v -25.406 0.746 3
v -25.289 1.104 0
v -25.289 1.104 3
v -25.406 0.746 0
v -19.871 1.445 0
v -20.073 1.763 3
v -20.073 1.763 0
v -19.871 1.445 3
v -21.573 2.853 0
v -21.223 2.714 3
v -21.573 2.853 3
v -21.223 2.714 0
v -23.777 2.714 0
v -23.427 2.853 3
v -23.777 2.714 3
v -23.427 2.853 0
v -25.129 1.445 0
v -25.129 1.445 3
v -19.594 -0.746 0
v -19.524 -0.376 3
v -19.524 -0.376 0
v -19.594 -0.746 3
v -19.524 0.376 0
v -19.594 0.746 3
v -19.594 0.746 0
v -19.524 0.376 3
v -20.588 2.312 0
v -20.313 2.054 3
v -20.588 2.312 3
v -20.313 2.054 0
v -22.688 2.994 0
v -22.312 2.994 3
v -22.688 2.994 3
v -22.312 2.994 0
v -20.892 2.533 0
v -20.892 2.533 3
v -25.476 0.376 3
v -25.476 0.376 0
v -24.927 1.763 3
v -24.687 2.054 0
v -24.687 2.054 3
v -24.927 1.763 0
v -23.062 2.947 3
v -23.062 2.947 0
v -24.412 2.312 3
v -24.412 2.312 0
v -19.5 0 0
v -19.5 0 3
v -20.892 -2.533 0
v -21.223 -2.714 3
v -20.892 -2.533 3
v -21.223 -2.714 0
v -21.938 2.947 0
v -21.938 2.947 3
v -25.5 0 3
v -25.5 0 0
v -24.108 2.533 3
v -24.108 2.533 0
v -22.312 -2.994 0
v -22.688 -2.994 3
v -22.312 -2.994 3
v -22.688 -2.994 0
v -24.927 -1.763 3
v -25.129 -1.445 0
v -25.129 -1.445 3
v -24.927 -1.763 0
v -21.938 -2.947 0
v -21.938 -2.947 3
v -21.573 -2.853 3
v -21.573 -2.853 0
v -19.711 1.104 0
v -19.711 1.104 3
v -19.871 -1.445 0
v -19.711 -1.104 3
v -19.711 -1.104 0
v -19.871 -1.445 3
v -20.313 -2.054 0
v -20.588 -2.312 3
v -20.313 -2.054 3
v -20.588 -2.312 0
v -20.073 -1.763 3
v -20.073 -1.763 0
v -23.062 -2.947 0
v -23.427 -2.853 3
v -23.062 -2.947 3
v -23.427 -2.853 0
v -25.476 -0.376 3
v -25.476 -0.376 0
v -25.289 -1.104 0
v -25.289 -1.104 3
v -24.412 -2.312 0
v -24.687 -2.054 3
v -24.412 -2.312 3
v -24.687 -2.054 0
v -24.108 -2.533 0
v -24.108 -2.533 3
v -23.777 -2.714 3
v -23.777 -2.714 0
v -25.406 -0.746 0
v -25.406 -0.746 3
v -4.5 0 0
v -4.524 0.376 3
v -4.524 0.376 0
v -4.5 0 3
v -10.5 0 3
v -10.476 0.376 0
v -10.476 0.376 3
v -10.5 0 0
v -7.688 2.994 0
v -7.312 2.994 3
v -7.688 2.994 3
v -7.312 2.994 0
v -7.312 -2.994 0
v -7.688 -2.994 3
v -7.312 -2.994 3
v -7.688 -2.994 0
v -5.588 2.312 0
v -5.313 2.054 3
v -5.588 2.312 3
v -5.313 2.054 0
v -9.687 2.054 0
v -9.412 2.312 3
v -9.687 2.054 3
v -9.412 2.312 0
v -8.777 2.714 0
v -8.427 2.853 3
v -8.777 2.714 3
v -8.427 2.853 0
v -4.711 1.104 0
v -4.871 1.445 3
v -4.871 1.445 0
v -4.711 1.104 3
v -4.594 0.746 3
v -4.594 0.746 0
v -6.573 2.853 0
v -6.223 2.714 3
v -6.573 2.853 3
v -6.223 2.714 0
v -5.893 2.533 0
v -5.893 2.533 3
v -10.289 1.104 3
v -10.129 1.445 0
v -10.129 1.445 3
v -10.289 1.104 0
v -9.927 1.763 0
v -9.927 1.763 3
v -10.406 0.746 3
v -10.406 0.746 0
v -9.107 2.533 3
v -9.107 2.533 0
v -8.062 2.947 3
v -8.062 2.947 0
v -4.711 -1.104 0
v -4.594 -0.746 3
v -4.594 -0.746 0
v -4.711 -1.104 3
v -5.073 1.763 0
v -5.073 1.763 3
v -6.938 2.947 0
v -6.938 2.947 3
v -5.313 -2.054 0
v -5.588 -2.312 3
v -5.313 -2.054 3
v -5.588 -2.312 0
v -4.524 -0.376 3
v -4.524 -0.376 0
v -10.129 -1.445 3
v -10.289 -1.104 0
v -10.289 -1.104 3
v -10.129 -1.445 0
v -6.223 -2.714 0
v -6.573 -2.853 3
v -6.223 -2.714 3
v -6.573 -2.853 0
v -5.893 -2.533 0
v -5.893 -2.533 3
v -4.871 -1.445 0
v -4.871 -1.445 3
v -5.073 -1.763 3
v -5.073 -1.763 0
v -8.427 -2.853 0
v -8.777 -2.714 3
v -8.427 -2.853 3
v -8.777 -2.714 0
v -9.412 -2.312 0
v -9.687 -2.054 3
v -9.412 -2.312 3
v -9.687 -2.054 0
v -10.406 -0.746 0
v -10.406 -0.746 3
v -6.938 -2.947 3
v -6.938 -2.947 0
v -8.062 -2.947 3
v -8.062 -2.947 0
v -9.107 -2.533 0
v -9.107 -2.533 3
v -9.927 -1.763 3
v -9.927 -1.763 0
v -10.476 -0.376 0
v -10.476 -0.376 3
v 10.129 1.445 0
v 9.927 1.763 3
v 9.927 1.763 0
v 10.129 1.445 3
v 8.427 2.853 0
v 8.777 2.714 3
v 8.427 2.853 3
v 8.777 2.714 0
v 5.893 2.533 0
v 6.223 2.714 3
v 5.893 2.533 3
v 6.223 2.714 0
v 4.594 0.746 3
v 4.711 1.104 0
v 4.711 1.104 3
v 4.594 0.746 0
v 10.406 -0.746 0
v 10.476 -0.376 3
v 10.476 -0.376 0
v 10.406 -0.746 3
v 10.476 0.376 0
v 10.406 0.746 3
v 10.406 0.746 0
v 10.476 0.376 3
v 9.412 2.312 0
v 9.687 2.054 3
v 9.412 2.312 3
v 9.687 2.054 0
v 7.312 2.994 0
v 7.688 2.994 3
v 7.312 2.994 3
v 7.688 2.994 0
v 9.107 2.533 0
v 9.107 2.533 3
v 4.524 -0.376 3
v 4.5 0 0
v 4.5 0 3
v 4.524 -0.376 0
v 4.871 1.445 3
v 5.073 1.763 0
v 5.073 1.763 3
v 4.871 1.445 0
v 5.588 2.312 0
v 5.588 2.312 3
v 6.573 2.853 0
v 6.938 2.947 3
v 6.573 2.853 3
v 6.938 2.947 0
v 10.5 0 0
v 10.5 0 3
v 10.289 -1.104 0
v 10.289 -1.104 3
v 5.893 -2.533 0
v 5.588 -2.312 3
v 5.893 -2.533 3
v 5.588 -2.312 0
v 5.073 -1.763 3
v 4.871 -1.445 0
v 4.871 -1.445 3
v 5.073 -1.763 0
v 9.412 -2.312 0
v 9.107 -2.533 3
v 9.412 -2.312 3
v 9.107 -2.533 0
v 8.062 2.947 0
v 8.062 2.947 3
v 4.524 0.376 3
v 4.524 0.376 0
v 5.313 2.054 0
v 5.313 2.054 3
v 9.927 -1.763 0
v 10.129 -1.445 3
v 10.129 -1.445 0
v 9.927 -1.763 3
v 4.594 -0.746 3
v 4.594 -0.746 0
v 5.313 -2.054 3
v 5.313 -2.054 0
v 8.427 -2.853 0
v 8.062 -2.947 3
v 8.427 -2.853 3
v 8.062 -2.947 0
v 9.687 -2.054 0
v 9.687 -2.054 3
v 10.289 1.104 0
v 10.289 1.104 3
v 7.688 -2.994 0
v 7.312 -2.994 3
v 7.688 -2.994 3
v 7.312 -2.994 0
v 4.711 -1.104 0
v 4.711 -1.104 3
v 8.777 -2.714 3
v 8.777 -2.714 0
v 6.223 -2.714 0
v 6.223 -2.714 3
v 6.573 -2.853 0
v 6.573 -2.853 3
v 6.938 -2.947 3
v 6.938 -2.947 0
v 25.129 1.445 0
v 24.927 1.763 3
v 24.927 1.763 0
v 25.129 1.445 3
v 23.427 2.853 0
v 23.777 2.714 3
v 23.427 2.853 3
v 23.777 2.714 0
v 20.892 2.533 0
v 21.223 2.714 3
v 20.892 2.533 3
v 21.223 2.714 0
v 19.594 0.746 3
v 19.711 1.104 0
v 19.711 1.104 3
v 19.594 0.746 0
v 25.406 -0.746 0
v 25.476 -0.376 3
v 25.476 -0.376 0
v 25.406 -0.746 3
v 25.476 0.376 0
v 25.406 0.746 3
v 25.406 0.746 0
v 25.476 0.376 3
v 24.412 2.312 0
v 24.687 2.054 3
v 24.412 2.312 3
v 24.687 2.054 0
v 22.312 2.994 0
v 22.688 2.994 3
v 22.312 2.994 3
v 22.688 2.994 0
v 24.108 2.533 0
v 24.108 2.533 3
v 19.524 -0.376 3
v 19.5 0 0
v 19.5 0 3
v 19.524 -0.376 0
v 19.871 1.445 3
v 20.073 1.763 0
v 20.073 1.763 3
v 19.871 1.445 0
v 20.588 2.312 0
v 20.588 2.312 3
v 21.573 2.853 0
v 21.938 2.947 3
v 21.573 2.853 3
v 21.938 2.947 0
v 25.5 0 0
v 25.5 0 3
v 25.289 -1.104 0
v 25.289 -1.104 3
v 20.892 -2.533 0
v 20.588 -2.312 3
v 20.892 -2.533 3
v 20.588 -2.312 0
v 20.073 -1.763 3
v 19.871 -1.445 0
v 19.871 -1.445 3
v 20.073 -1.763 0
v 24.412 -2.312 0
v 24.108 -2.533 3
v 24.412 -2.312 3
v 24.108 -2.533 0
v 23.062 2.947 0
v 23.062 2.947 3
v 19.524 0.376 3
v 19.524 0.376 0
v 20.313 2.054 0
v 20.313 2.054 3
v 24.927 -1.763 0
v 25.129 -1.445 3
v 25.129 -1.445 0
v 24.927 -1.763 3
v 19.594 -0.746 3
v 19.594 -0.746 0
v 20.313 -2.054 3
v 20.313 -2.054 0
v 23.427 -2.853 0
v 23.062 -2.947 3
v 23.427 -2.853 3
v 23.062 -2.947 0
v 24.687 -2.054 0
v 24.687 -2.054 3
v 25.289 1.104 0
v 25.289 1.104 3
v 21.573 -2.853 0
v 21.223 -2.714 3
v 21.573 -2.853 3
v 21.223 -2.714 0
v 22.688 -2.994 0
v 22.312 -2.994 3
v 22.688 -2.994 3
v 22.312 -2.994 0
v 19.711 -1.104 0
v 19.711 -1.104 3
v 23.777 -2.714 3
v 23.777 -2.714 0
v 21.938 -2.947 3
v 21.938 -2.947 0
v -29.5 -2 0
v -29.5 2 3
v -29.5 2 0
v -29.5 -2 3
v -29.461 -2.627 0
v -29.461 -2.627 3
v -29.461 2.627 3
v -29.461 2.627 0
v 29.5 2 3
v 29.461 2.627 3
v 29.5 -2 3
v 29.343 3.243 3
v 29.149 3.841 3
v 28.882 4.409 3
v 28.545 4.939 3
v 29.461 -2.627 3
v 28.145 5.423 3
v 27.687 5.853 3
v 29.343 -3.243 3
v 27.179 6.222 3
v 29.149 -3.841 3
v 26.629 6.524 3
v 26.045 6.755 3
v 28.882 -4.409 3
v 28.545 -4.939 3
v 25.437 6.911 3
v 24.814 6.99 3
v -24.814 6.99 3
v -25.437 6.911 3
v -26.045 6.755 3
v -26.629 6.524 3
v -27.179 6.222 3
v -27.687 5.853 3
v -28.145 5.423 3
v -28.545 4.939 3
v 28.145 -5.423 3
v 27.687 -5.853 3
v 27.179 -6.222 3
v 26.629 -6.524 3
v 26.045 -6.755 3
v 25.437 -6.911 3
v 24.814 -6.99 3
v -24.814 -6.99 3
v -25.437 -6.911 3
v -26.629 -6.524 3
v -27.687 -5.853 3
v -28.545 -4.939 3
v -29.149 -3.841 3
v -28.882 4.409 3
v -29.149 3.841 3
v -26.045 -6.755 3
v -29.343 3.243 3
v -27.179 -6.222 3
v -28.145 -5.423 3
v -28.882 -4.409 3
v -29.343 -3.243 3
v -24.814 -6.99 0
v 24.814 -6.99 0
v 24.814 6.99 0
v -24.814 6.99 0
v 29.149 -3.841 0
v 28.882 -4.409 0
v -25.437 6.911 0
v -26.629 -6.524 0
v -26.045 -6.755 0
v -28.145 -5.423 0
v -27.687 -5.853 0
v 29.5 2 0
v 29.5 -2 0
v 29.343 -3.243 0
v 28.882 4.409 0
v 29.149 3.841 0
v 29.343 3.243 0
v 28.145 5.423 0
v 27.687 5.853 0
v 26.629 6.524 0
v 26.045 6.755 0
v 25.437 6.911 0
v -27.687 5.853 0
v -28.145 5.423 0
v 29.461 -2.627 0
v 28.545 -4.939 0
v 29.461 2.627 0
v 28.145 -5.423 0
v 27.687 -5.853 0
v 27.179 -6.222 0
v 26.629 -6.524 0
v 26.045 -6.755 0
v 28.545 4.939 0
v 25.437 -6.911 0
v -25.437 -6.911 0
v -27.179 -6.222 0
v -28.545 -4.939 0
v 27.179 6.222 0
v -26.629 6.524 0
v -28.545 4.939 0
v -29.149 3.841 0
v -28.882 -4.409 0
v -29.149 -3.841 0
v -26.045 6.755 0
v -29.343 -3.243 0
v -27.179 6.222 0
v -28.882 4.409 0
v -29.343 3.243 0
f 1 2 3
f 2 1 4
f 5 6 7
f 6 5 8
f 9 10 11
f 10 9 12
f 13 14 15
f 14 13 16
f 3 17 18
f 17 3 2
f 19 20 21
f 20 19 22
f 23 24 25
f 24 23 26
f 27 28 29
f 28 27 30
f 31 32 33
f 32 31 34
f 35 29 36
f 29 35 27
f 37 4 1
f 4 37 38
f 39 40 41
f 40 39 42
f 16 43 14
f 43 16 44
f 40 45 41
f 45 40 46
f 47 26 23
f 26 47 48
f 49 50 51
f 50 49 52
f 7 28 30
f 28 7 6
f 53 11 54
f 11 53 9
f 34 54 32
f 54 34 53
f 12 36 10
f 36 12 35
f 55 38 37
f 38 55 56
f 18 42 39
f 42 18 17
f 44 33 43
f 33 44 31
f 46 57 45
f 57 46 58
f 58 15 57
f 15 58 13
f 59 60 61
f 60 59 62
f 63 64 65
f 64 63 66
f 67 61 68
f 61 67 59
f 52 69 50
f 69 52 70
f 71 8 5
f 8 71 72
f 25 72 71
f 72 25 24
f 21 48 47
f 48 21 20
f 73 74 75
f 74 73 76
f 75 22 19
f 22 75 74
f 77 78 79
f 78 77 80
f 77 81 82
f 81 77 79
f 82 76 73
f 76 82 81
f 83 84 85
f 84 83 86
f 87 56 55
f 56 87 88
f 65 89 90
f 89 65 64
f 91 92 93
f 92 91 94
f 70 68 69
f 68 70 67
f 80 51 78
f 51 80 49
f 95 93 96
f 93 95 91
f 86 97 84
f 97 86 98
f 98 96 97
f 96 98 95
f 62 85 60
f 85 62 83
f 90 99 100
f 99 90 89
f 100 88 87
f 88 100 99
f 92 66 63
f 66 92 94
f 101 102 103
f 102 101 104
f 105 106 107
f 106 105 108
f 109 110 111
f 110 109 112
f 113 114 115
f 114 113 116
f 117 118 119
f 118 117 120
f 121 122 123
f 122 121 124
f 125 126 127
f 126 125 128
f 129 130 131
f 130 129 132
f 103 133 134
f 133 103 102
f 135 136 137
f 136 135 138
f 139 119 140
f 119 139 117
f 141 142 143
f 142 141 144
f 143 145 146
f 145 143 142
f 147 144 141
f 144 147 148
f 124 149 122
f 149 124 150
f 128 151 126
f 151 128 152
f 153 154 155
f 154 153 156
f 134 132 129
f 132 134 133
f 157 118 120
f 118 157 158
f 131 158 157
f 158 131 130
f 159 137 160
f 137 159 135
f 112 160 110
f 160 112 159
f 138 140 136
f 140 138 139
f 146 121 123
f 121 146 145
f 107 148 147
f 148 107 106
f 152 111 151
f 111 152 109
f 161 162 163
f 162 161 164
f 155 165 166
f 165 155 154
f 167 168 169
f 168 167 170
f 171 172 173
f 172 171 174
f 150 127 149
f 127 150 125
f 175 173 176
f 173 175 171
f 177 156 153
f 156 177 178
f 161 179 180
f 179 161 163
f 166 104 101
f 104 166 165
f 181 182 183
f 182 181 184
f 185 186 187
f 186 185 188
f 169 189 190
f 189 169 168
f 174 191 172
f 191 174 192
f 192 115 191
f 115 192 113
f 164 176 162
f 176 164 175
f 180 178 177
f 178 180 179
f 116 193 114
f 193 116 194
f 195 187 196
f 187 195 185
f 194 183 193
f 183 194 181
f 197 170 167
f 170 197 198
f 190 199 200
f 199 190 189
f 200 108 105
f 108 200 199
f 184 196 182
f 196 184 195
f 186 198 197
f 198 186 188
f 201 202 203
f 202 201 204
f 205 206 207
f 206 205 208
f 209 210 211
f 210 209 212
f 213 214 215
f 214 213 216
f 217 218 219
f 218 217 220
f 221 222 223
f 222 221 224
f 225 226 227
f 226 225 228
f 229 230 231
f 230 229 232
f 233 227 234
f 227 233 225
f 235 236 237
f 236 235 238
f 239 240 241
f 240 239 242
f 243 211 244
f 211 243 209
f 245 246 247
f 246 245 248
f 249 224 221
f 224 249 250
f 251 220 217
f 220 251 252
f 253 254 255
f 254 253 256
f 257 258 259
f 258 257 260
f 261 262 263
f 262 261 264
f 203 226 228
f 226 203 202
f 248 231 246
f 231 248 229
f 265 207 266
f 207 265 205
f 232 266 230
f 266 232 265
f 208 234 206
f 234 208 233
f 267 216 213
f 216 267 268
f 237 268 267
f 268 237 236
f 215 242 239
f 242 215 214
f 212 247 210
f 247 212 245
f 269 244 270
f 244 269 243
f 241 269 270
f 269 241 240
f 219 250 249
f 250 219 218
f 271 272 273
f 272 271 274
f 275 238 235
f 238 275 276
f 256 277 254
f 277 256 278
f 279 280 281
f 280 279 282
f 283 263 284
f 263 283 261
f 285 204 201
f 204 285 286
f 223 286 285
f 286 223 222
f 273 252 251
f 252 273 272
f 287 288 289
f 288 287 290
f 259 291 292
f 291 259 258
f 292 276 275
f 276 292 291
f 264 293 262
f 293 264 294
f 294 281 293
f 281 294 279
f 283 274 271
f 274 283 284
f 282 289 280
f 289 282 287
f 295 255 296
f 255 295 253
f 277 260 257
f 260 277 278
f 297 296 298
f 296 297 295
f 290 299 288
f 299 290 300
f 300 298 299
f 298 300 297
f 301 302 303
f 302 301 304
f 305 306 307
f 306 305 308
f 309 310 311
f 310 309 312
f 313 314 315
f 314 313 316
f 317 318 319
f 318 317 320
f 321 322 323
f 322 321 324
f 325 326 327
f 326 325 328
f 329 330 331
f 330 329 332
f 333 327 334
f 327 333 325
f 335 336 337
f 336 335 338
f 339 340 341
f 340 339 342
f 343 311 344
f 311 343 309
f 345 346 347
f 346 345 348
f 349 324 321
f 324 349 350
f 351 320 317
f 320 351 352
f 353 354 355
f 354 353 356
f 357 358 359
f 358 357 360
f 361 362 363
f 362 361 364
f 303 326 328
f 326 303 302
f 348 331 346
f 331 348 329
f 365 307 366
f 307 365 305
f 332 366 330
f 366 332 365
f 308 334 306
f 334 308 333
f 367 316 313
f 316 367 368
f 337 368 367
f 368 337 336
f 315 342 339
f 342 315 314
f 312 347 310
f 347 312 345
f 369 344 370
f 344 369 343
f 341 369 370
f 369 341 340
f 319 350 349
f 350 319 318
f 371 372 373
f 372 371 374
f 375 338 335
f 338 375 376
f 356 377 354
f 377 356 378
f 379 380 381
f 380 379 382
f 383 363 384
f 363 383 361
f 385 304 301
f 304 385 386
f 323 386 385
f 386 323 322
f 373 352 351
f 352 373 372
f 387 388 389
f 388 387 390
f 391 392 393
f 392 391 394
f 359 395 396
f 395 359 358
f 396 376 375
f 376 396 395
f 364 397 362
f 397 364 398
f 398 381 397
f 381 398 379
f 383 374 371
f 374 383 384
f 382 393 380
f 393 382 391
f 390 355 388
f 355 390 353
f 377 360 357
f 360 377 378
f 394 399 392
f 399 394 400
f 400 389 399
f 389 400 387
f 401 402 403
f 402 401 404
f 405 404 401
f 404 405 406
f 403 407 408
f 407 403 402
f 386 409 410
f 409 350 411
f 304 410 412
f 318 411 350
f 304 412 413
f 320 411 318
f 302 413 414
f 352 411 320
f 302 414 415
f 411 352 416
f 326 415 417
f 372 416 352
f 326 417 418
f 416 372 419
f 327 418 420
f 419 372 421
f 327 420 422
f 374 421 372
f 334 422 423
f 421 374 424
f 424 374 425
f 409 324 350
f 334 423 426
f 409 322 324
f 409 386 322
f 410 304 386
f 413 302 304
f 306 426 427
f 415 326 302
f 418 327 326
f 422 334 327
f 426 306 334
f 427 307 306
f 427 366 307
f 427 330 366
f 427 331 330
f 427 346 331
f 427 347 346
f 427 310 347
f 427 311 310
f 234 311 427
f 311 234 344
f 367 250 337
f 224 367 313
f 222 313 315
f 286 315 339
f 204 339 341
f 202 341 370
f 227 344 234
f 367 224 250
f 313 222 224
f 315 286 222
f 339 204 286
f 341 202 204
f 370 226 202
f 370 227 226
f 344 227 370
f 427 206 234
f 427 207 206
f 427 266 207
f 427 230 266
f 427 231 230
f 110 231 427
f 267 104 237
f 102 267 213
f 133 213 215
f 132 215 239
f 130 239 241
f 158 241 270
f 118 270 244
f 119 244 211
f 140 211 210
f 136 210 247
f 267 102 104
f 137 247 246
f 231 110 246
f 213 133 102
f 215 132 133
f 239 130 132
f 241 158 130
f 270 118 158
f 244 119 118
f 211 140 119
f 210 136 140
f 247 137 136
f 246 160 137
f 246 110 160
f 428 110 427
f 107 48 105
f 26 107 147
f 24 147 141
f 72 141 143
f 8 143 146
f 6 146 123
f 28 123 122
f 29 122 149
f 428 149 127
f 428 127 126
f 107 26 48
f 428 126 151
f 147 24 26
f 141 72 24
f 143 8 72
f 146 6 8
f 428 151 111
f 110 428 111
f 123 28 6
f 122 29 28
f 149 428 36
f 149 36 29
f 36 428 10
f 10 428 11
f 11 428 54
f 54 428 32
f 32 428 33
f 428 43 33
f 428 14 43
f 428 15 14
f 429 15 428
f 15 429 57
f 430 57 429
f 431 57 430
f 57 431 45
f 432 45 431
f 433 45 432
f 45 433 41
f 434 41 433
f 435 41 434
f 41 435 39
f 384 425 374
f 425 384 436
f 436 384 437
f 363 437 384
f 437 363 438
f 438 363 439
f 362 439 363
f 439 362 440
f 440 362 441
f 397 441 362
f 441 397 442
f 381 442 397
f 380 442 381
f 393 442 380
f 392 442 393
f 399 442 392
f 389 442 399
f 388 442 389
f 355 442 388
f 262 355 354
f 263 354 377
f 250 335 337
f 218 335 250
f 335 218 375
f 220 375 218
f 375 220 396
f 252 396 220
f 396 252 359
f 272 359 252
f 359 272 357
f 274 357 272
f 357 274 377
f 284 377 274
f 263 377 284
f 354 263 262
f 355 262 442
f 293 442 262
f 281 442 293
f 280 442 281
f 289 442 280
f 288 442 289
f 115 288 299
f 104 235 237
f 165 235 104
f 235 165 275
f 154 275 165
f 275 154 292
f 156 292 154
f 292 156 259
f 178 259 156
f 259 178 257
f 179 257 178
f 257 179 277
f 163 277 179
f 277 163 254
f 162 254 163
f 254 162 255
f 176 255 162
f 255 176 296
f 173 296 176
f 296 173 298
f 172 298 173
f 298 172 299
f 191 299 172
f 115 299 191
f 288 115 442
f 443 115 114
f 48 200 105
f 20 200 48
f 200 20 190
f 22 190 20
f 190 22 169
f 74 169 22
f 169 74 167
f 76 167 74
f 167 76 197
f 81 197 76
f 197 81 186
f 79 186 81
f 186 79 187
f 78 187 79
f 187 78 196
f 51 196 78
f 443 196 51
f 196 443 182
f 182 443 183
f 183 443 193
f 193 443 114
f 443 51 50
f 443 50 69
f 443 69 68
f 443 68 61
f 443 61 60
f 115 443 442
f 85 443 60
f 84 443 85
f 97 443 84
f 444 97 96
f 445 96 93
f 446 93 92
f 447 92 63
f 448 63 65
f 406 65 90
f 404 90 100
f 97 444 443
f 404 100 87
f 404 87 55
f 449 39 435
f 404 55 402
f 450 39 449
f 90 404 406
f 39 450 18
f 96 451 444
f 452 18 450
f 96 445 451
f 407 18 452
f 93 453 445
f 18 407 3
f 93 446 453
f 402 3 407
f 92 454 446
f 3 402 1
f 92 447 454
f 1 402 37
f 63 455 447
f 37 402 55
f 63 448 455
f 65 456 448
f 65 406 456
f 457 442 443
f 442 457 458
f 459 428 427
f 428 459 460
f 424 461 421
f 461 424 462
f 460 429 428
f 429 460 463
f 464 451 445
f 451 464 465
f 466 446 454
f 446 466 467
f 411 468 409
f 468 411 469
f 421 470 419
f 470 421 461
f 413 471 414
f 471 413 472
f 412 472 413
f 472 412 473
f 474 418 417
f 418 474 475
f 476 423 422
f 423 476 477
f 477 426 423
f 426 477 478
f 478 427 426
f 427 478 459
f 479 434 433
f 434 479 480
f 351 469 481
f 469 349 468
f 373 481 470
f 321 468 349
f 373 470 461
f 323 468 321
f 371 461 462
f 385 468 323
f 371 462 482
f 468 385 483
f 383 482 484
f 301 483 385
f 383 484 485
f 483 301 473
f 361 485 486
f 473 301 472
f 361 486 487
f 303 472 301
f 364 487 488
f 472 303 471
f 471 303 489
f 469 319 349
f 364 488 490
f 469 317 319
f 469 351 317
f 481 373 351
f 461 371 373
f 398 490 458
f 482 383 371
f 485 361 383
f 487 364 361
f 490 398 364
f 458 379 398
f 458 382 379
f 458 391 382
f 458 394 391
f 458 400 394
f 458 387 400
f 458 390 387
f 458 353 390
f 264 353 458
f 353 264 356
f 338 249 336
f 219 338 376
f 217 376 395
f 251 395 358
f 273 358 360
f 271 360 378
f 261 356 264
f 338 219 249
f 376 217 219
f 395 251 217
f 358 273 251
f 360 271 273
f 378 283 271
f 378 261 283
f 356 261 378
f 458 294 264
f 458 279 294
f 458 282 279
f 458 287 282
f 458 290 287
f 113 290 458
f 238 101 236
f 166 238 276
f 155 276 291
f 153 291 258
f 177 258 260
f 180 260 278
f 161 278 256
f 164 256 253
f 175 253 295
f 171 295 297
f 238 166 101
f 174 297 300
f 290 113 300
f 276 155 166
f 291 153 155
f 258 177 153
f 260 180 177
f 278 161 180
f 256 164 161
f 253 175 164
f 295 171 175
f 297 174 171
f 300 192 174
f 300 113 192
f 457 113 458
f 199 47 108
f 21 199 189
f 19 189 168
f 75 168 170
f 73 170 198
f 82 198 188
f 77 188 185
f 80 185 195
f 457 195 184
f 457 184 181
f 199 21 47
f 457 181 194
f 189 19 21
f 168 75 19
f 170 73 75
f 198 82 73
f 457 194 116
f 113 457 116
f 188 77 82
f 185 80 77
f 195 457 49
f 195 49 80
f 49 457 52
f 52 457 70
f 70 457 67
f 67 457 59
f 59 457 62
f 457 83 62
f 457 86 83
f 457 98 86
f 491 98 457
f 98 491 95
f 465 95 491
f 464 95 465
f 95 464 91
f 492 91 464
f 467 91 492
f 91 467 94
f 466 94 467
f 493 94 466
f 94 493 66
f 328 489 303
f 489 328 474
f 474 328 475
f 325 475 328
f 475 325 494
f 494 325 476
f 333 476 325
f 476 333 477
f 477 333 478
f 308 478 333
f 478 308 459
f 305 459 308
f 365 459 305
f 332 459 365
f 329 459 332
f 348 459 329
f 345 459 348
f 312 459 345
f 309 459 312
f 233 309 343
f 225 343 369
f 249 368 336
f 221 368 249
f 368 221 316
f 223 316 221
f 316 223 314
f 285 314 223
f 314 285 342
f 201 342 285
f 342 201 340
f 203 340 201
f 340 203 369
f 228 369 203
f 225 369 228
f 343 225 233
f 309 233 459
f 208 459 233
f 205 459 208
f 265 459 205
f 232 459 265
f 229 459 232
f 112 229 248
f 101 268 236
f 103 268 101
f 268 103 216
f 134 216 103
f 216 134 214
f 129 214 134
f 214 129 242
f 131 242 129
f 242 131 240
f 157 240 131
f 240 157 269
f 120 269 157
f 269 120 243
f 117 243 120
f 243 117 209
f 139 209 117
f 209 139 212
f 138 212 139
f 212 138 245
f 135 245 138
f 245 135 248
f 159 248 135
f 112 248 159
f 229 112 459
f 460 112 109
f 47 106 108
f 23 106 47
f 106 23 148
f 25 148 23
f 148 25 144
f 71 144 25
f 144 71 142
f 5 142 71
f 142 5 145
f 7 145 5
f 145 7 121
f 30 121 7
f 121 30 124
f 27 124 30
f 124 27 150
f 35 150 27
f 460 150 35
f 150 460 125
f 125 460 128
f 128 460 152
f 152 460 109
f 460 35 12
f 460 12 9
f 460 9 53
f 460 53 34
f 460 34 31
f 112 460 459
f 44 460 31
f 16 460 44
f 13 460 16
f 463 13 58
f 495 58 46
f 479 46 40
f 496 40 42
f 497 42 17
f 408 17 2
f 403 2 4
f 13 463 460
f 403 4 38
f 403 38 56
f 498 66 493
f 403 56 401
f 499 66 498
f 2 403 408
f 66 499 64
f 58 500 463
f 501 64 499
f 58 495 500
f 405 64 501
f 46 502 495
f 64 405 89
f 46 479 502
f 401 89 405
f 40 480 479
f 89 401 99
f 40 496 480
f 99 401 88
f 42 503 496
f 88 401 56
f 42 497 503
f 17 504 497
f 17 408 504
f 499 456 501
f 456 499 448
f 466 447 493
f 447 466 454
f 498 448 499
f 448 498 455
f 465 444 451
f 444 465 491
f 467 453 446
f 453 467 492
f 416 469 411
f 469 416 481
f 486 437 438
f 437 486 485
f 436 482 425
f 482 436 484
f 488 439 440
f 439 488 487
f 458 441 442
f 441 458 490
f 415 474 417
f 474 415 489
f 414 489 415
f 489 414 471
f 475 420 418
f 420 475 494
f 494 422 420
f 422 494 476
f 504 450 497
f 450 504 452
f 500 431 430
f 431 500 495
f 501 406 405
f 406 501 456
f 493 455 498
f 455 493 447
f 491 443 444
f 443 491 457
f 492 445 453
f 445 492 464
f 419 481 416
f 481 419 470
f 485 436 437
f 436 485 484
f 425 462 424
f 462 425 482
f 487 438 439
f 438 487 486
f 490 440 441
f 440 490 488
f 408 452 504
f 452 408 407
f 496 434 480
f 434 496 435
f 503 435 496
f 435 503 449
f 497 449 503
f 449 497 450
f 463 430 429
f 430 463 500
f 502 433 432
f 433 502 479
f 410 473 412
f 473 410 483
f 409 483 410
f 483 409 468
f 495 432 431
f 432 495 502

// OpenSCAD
// Generated by SolidPython 1.1.3 on 2023-03-12 21:54:49
$fn = 50;


difference() {
	union() {
		translate(v = [0, 0, 0]) {
			rotate(a = [0, 0, 0]) {
				hull() {
					translate(v = [-24.5000000000, 2.0000000000, 0]) {
						rotate(a = [0, 0, 0]) {
							translate(v = [0, 0, 0]) {
								rotate(a = [0, 0, 0]) {
									cylinder(h = 3, r = 5);
								}
							}
						}
					}
					translate(v = [24.5000000000, 2.0000000000, 0]) {
						rotate(a = [0, 0, 0]) {
							translate(v = [0, 0, 0]) {
								rotate(a = [0, 0, 0]) {
									cylinder(h = 3, r = 5);
								}
							}
						}
					}
					translate(v = [-24.5000000000, -2.0000000000, 0]) {
						rotate(a = [0, 0, 0]) {
							translate(v = [0, 0, 0]) {
								rotate(a = [0, 0, 0]) {
									cylinder(h = 3, r = 5);
								}
							}
						}
					}
					translate(v = [24.5000000000, -2.0000000000, 0]) {
						rotate(a = [0, 0, 0]) {
							translate(v = [0, 0, 0]) {
								rotate(a = [0, 0, 0]) {
									cylinder(h = 3, r = 5);
								}
							}
						}
					}
				}
			}
		}
	}
	union() {
		translate(v = [-22.5000000000, 0.0000000000, 0]) {
			rotate(a = [0, 0, 0]) {
				translate(v = [0, 0, -50]) {
					rotate(a = [0, 0, 0]) {
						cylinder(h = 100, r = 3.0000000000);
					}
				}
			}
		}
		translate(v = [-7.5000000000, 0.0000000000, 0]) {
			rotate(a = [0, 0, 0]) {
				translate(v = [0, 0, -50]) {
					rotate(a = [0, 0, 0]) {
						cylinder(h = 100, r = 3.0000000000);
					}
				}
			}
		}
		translate(v = [7.5000000000, 0.0000000000, 0]) {
			rotate(a = [0, 0, 0]) {
				translate(v = [0, 0, -50]) {
					rotate(a = [0, 0, 0]) {
						cylinder(h = 100, r = 3.0000000000);
					}
				}
			}
		}
		translate(v = [22.5000000000, 0.0000000000, 0]) {
			rotate(a = [0, 0, 0]) {
				translate(v = [0, 0, -50]) {
					rotate(a = [0, 0, 0]) {
						cylinder(h = 100, r = 3.0000000000);
					}
				}
			}
		}
	}
}
/***********************************************
*********      SolidPython code:      **********
************************************************
 
from solid import *
import os
import subprocess

import oomB

import opsc_library_gen

mode = "laser"
#mode = "3d_print"

defined_objects = {}

radius_dict = {}
countersunk_dict = {}


def set_mode(m):
    global mode
    mode = m
    radius_dict['M6'] = 6.5/2
    radius_dict['M3'] = 3.3/2
    if mode == "laser":
        radius_dict['M6'] = 6/2
        radius_dict['M3'] = 3/2

    countersunk_dict['M3'] = {}
    countersunk_dict['M3']['little_rad'] = radius_dict['M3']
    countersunk_dict['M3']['big_rad'] = (5.5+0.6)/2
    if mode == "laser":
        countersunk_dict['M3']['big_rad'] = (4.75+0.6)/2
        countersunk_dict['M3']['little_rad'] = (4.75+0.6)/2

    countersunk_dict['M3']['height'] = 1.7


def opsc_make_object(filename, objects, save_type="none",resolution=50, layers = 1, tilediff = 200, mode="laser", overwrite=True):
    if overwrite or not os.path.exists(filename):
        set_mode(mode)
        save_type = save_type.lower()
        os.makedirs(os.path.dirname(filename), exist_ok=True)
        final_object = opsc_get_object(objects, mode = mode)
        # Save the final object to the specified filename    
        scad_render_to_file(final_object, filename, file_header='$fn = %s;' % resolution, include_orig_code=True)
        if mode == "laser":
            filename_laser = filename.replace(".scad","-flat.scad")
            scad_render_to_file(getLaser(final_object, layers=layers, tilediff=tilediff), filename_laser, file_header='$fn = %s;' % resolution, include_orig_code=True)
            if save_type == "all":
                saveToAll(filename_laser)
            elif save_type == "dxf":
                saveToDxf(filename_laser)
        if save_type == "all":
            saveToAll(filename)
        elif save_type == "dxf":
            saveToDxf(filename)


def opsc_get_object(objects, mode = "laser"):
    # Create the solidpython objects only include the positive objects and if they don't have inclusion or their inclusion is either all or mode
    # Initialize an empty list to store the results
    positive_objects = []

    # Iterate over the "objects" list
    for obj in objects:
        # Check if the current object has a "type" key with a value of "positive"
        if obj['type'] == 'positive':
            # Check if the current object has an "inclusion" key and its value matches "mode",
            # or if the current object does not have an "inclusion" key at all
            if not 'inclusion' in obj or obj['inclusion'] == "all" or obj['inclusion'] == mode:
                # Call the "get_opsc_item" function with the current object as an argument
                opsc_item = get_opsc_item(obj)
                # Add the result to the "positive_objects" list
                positive_objects.append(opsc_item)
# Initialize an empty list to store the results
    negative_objects = []

    # Iterate over the "objects" list
    for obj in objects:
        # Check if the current object has a "type" key with a value of "negative"
        if obj['type'] == 'negative':
            # Check if the current object has an "inclusion" key and its value matches "mode",
            # or if the current object does not have an "inclusion" key at all
            if not 'inclusion' in obj or obj['inclusion'] == "all" or obj['inclusion'] == mode:
                # Call the "get_opsc_item" function with the current object as an argument
                opsc_item = get_opsc_item(obj)
                # Add the result to the "negative_objects" list
                negative_objects.append(opsc_item)
    
    #positive_objects = [get_opsc_item(obj) for obj in objects if obj['type'] == 'positive']
    #negative_objects = [get_opsc_item(obj) for obj in objects if obj['type'] == 'negative']
    # Union the positive objects
    positive_object = union()(*positive_objects)
    # Union the negative objects
    negative_object = union()(*negative_objects)
    # Create the final object by subtracting the negative objects from the positive objects
    return difference()(positive_object, negative_object)

def get_opsc_item(params):
    # A dictionary to map radius string values to numerical values
    #radius_dict = {'small': 5, 'medium': 10, 'large': 15}
    # An array of function names for basic shapes
    basic_shapes = ['cube', 'sphere', 'cylinder']
    
    # An array of function names for other shapes
    other_shapes = ['hole', 'slot', 'rounded_rectangle', 'countersunk']
    


    # Convert radius to r if present, and remove radius from the params dictionary
    if 'radius' in params:
        if isinstance(params['radius'], str):
            # Use the radius_dict to map the radius string value to a numerical value
            params['r'] = radius_dict[params['radius']]
        else:
            params['r'] = params['radius']
        del params['radius']
    

    # Check if the object type is a basic shape
    if params['shape'] in basic_shapes:
        # Remove shape and unexpected dictionary values
        allowed_keys = {'size', 'r', 'r1', 'r2', 'd', 'h', 'rw', 'rh', 'dw', 'dh'}
        shape_params = {k: v for k, v in params.items() if k in allowed_keys}

        # Call the corresponding function for the shape parameter, using ** notation to pass the shape_params dictionary as keyword arguments
        return get_opsc_transform(params,globals()[params['shape']](**shape_params))
    
    # If the object type is not a basic shape, check if it's a defined object or one of the other shapes
    elif params['shape'] in other_shapes:
        # Call the corresponding function for the shape parameter, passing the params dictionary as an argument
        p2 = copy.deepcopy(params)
        p2["pos"] = [0,0,0]
        return get_opsc_transform(params,globals()[params['shape']](p2))
    
    # If the object is not a basic shape or a defined object, try to import it from a .scad file
    else:
        obj = defined_objects[params['shape']]
        return get_opsc_transform(params,obj)

def get_opsc_transform(params, solid_obj):
    # Rotate the object based on the 'rot' field in the params dictionary, or the 'rotX', 'rotY', and 'rotZ' fields if 'rot' is not present
    rot = params.get('rot', [])
    if rot:
        rotX, rotY, rotZ = rot
    else:
        rotX = params.get('rotX', 0)
        rotY = params.get('rotY', 0)
        rotZ = params.get('rotZ', 0)
    solid_obj = rotate([rotX, rotY, rotZ])(solid_obj)

    # Translate the object based on the 'pos' field in the params dictionary, or the 'x', 'y', and 'z' fields if 'pos' is not present
    pos = params.get('pos', [])
    if pos:
        x, y, z = pos
    else:
        x = params.get('x', 0)
        y = params.get('y', 0)
        z = params.get('z', 0)
    solid_obj = translate([x, y, z])(solid_obj)
    return solid_obj


import random

def opsc_easy_array(type, shape, repeats, pos_start, shift_arr, **kwargs):
    for i in range(0,3):
        repeats.append(1)
        pos_start.append(0)
        shift_arr.append(0)
    return_objects = []

    for x in range(0,repeats[0]):
        for y in range(0,repeats[1]):
            for z in range(0,repeats[2]):
                return_objects.append(opsc_easy(type, shape, pos=[pos_start[0]+x*shift_arr[0],pos_start[1]+y*shift_arr[1],pos_start[2]+z*shift_arr[2]], **kwargs))
    return return_objects                



def opsc_easy(type, shape, **kwargs):
    obj = {
        'type': type,
        'shape': shape
    }
    for param in ['size', 'r', 'r1', 'r2', 'd', 'h', 'rw', 'rh', 'dw', 'dh', 'pos', 'x', 'y', 'z', 'rot', 'rotX', 'rotY', 'rotZ', "w", "inclusion"]:
        if param in kwargs:
            obj[param] = kwargs[param]
    return obj

def hole(params):
    p2 = copy.deepcopy(params)  
    # Check if the radius is a string and replace it with the corresponding value from the dictionary
    if isinstance(p2['r'], str):
        p2['r'] = radius_dict[p2['r']]
    
    # Set the height to 100 if not specified
    if 'h' not in p2:
        p2['h'] = 100
        p2["pos"] = [0,0,-50]
    p2["center"] = True
    # Create the cylinder object
    p2["shape"] = "cylinder"
    p2["type"] = "positive"

    return get_opsc_item(p2)

import copy

def countersunk(params):
    p2 = copy.deepcopy(params)
    counter_rad = p2['r']
    p2['r'] = radius_dict[p2['r']]
    hp = copy.deepcopy(p2)
    hp["type"] = "positive"
    hp["shape"] = "hole"
    del hp["rot"]
    hol = get_opsc_item(hp)
    
    cp = copy.deepcopy(p2)
    cp["h"] = countersunk_dict[counter_rad]["height"]
    cp["r2"] = countersunk_dict[counter_rad]["little_rad"]
    cp["r1"] = countersunk_dict[counter_rad]["big_rad"]
    del cp["r"]
    del cp["rot"]
    cp["type"] = "positive"
    cp["shape"] = "cylinder"
    cp["pos"] = [0,0,0]

    top = get_opsc_item(cp)
    return union()(hol,top)



def slot(params):  
    p2 = copy.deepcopy(params) 
    if isinstance(p2['r'], str):
        p2['r'] = radius_dict[p2['r']]
    p2["type"] = "positive"
    p2["shape"] = "hole"
    del p2["rot"]
    p2["pos"] = [0,0,0]
    left = copy.deepcopy(p2)
    right = copy.deepcopy(p2)
    left["pos"][0] = p2["w"] / 2 - p2["r"] 
    
    right["pos"][0] = -p2["w"] / 2 + p2["r"] 
    pass
    leftObj = get_opsc_item(left)
    rightObj = get_opsc_item(right)
    return hull()(leftObj, rightObj)

def rounded_rectangle(params):   
    p2 = copy.deepcopy(params) 
    p2["h"] = p2["size"][2]
    p2["pos"] = p2.get("pos", [0, 0, 0]) 
    p2["type"] = "positive"
    p2["shape"] = "hole"
    p2["pos"] = [0,0,0]
    
    if 'rot' in p2:
        del p2["rot"]   
    if 'r' not in p2:
        p2["r"] = 5 
    tl = copy.deepcopy(p2)
    tr = copy.deepcopy(p2)
    bl = copy.deepcopy(p2)
    br = copy.deepcopy(p2)
    tl["pos"][0] = -(p2["size"][0] - p2["r"]*2)/2
    tl["pos"][1] = (p2["size"][1] - p2["r"]*2)/2
    tr["pos"][0] = (p2["size"][0] - p2["r"]*2)/2
    tr["pos"][1] = (p2["size"][1] - p2["r"]*2)/2
    bl["pos"][0] = -(p2["size"][0] - p2["r"]*2)/2
    bl["pos"][1] = -(p2["size"][1] - p2["r"]*2)/2
    br["pos"][0] = (p2["size"][0] - p2["r"]*2)/2
    br["pos"][1] = -(p2["size"][1] - p2["r"]*2)/2
    del tl["size"]
    del tr["size"]
    del bl["size"]
    del br["size"]
    tlo = get_opsc_item(tl)
    tro = get_opsc_item(tr)
    blo = get_opsc_item(bl)
    bro = get_opsc_item(br)    
    return hull()(tlo, tro, blo, bro)



def import_scad_object(filename):
    # Import the .scad file and convert it to a solidpython object
    #filename = "parts"
    obj = import_scad(filename)
    return obj.main()
    


import os
import solid as solidpython

# A dictionary to store the defined objects


def load_scad_objects():
    opsc_library_gen.gen_library(defined_objects)

import random

def test(num_objects):
    objects = []
    for i in range(num_objects):
        # Choose a random shape
        #shape = random.choice(['cube', 'sphere', 'cylinder', 'hole', 'slot', "rounded_rectangle"])
        shape = random.choice(["rounded_rectangle"])

        # Choose a random type
        type = random.choice(['positive', 'negative'])
        
        # Create an empty object dictionary
        obj = {'shape': shape, 'type': type}
        
        # Set shape-specific parameters
        if obj['shape'] in ['cube']:
            obj['size'] =  [random.uniform(5, 15), random.uniform(5, 15), random.uniform(5, 15)]
        if obj['shape'] in ['rounded_rectangle']:
            obj['size'] =  [random.uniform(5, 15), random.uniform(5, 15), random.uniform(5, 15)]
            obj['r'] = random.uniform(0.5, 5)
        elif obj['shape'] == 'sphere':
            obj['r'] = random.uniform(5, 15)
        elif obj['shape'] in ['cylinder', 'hole']:
            obj['r'] = random.uniform(0.5, 5)
            obj['h'] = random.uniform(5, 15)
        elif obj['shape'] == 'slot':
            obj['r'] = random.uniform(0.5, 5)
            obj['h'] = random.uniform(5, 15)
            obj['w'] = random.uniform(5, 15)
        
        # Set a random position and rotation
        obj['pos'] = [random.uniform(-20, 20), random.uniform(-20, 20), random.uniform(-20, 20)]
        obj['rot'] = [random.uniform(-180, 180), random.uniform(-180, 180), random.uniform(-180, 180)]
        
        # Add the object to the list
        objects.append(obj)
    return objects

####### old file saving
def saveToAll(fileIn):
    saveToDxf(fileIn)
    saveToPng(fileIn)
    saveToStl(fileIn)
    saveToSvg(fileIn)

def saveToDxf(fileIn, fileOut="", copy_to_laser=True):
    if fileOut == "":
        fileOut = fileIn.replace(".scad",".dxf")
    saveToFile(fileIn, fileOut)


    
def saveToPng(fileIn, fileOut="",extra="--render"):
    if fileOut == "":
        fileOut = fileIn.replace(".scad",".png")
    saveToFile(fileIn, fileOut)

def saveToStl(fileIn, fileOut=""):
    if fileOut == "":
        fileOut = fileIn.replace(".scad",".stl")
    saveToFile(fileIn, fileOut)
    
def saveToSvg(fileIn, fileOut=""):
    if fileOut == "":
        fileOut = fileIn.replace(".scad",".svg")
    saveToFile(fileIn, fileOut)

def saveToFile(fileIn, fileOut,extra=""):
    #extra = extra + " --colorscheme Tomorrow"

    launchStr = 'openscad -o "' + fileOut + '"' + extra + ' "' + fileIn + '"'
    if ".png" in fileOut:
        launchStr = launchStr + " --render"
    print("            saveToFile launch string: " + launchStr)
    subprocess.run(launchStr)
    x=0

def getLaser(final_object,start=1.5,layers=1,thickness=3,tilediff=200):
        rv= []

        for x in range(layers):
            rv.append(translate([0,x*tilediff,0])(
                    projection()(
                        intersection()(translate([-500,-500,start+x*thickness])(cube(size=[1000,1000,0.1])),
                            final_object
                        )
                    )
            )
            )
            
        return union()(rv)

set_mode("laser")
load_scad_objects() 
 
************************************************/
